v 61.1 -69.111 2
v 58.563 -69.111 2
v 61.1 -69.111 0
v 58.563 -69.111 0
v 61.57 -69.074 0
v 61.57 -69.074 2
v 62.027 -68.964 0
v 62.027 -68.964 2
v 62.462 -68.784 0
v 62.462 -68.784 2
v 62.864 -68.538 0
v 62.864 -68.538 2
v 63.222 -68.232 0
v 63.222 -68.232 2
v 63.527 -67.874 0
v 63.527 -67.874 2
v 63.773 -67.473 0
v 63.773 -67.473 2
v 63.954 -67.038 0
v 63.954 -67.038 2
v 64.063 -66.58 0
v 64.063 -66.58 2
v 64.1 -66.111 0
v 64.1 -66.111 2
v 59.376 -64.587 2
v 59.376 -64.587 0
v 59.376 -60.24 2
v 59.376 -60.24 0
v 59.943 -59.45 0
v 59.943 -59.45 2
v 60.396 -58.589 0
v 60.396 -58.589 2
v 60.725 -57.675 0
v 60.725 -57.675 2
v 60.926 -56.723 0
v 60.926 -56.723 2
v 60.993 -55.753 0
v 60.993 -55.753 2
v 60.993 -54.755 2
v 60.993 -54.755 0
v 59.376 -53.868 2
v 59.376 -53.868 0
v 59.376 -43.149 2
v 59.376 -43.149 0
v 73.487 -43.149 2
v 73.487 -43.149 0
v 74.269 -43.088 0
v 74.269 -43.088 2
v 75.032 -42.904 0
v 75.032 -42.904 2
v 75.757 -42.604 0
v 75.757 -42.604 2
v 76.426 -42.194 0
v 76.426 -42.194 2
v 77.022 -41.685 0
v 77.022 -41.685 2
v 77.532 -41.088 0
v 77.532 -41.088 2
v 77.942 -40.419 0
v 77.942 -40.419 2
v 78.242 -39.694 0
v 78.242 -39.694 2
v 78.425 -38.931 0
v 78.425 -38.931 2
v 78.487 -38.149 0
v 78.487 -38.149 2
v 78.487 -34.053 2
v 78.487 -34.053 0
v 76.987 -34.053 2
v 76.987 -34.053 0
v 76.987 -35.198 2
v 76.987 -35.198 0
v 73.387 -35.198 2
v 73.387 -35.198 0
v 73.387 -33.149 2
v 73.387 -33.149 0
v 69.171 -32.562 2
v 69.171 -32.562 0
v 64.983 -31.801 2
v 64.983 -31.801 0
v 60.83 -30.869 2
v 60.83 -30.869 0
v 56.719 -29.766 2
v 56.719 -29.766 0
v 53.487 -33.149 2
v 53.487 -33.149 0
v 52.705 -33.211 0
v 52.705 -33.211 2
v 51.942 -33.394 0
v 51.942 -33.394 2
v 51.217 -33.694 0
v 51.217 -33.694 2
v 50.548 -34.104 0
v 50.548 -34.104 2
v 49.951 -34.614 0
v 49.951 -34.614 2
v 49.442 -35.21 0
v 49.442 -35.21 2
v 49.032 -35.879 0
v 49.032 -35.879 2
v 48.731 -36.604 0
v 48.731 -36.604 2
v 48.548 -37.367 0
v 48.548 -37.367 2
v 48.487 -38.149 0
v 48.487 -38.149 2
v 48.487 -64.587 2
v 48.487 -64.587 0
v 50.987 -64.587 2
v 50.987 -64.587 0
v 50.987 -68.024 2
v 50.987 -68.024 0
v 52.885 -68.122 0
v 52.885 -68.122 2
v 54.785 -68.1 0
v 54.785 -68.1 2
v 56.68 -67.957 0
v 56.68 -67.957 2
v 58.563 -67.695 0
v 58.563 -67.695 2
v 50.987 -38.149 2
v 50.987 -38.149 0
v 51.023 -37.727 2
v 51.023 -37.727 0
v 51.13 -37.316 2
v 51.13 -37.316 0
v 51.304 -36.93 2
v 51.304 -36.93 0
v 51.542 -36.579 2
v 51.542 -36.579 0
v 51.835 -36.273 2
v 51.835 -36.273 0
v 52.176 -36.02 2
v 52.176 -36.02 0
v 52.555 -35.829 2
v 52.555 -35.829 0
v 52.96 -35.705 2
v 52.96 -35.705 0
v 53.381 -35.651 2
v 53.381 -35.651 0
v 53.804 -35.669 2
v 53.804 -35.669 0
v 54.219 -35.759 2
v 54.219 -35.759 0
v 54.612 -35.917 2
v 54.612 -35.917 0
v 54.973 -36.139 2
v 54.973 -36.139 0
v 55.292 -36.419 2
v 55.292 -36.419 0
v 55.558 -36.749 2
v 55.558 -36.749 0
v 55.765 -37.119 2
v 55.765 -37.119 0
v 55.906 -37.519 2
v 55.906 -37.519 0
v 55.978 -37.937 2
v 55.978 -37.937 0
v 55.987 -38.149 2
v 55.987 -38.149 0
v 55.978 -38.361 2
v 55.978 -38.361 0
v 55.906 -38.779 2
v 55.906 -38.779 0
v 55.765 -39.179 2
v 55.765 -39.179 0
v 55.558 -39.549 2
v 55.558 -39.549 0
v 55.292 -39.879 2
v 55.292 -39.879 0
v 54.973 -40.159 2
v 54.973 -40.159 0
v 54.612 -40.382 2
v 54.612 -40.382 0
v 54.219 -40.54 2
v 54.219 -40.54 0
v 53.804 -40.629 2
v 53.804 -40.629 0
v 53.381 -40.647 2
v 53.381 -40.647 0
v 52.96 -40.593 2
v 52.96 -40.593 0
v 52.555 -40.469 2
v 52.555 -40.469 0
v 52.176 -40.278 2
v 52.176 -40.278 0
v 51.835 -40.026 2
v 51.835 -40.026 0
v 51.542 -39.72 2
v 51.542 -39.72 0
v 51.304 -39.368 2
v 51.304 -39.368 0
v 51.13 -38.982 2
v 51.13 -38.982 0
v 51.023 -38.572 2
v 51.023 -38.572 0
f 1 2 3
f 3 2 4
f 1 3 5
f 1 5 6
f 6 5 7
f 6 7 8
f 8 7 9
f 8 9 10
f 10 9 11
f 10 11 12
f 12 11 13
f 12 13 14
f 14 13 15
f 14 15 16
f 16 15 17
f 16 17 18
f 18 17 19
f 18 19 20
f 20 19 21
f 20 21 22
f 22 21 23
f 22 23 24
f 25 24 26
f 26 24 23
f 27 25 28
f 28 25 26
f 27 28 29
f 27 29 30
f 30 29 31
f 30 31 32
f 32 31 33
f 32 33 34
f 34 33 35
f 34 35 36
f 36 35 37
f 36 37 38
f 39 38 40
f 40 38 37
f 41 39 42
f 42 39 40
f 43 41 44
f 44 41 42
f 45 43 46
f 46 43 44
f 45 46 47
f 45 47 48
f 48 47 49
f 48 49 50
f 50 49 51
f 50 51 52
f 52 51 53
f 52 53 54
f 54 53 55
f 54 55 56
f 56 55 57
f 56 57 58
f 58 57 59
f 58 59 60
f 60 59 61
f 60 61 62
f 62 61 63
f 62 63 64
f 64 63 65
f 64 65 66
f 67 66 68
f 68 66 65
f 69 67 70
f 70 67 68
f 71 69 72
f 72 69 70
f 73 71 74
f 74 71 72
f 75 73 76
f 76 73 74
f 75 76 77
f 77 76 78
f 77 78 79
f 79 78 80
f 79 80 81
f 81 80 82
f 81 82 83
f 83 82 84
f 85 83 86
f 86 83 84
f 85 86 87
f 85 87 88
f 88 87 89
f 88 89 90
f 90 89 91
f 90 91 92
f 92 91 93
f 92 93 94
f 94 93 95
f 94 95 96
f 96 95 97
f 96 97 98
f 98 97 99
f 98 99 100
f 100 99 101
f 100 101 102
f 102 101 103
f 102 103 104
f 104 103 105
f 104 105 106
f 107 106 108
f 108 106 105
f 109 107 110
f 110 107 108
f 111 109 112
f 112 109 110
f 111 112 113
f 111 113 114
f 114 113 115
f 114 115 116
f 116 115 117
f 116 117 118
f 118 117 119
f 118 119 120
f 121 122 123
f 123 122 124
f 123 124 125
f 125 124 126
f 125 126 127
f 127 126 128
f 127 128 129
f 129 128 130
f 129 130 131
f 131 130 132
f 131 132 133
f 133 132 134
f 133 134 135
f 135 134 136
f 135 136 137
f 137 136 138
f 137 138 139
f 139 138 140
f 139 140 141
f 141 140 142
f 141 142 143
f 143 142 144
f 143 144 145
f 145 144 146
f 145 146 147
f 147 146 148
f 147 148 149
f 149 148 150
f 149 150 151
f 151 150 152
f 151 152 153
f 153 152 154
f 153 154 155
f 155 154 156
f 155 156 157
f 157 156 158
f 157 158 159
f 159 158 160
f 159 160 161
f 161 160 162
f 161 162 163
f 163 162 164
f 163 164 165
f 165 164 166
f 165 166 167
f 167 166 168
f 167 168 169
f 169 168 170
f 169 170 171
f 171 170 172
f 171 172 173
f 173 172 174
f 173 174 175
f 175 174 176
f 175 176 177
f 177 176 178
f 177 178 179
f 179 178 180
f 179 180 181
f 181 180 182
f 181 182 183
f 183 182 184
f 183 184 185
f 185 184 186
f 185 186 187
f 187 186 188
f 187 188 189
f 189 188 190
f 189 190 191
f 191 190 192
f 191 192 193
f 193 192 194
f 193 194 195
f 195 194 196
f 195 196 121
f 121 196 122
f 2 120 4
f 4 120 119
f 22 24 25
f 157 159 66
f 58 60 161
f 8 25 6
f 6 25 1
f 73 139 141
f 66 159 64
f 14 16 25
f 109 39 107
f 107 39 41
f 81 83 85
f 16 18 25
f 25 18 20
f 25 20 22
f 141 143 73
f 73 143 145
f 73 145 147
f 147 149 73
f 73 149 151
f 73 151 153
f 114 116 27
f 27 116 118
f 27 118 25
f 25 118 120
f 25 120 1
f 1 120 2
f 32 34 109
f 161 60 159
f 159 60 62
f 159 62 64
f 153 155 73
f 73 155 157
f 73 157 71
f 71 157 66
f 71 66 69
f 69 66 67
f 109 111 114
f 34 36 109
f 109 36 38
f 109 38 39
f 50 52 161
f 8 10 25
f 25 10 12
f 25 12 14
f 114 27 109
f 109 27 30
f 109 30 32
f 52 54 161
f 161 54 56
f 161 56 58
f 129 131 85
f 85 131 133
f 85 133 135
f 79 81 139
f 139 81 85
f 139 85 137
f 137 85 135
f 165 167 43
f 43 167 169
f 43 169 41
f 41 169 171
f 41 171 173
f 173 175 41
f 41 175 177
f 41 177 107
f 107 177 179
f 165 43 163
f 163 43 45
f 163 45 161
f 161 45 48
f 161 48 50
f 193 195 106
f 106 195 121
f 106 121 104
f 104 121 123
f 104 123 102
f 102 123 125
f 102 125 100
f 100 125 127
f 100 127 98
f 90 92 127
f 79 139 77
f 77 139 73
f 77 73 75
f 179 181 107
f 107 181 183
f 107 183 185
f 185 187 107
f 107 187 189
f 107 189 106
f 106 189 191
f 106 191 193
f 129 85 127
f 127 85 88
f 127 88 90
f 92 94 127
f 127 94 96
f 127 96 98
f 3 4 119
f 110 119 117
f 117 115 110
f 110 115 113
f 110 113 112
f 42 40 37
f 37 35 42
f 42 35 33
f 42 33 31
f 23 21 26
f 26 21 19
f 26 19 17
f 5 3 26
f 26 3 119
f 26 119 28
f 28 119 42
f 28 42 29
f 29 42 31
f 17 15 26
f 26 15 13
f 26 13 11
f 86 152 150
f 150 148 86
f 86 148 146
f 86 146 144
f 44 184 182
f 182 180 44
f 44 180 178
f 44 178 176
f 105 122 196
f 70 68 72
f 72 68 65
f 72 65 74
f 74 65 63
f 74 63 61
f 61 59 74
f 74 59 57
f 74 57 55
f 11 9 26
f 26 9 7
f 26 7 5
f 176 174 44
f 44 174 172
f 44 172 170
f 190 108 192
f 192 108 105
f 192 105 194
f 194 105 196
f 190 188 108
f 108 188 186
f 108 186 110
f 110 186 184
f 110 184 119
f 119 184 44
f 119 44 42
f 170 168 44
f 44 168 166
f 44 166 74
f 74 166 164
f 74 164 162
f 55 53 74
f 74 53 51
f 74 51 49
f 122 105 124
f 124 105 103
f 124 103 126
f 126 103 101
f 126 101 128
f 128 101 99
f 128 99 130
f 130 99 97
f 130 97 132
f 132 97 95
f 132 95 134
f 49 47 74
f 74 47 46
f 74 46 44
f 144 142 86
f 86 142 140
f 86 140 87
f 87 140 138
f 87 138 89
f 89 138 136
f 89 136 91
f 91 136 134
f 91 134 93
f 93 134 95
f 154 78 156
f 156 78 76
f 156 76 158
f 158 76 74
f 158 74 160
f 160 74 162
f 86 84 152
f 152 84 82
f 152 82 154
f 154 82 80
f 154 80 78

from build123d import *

# Parameters (mm, degrees)
SKETCH_1_R      = 2.5
EXTRUDE_1_DEPTH = 2


with BuildPart() as part:
    # 스케치1 → 보스-돌출1 (new body)
    with BuildSketch(Plane.XY):
        with BuildLine():
            Line((58.562856649, -69.110949309), (61.100431709, -69.110949309))
            ThreePointArc((61.100431709, -69.110949309), (63.221752053, -68.232269653), (64.100431709, -66.110949309))
            Line((64.100431709, -66.110949309), (59.376120264, -64.586771365))
            Line((59.376120264, -64.586771365), (59.376120264, -60.240028533))
            ThreePointArc((59.376120264, -60.240028533), (60.576391584, -58.13775418), (60.992924776, -55.753072063))
            Line((60.992924776, -55.753072063), (60.992924776, -54.755314285))
            Line((60.992924776, -54.755314285), (59.376120264, -53.867981647))
            Line((59.376120264, -53.867981647), (59.376120264, -43.149191929))
            Line((59.376120264, -43.149191929), (73.486715323, -43.149191929))
            ThreePointArc((73.486715323, -43.149191929), (77.022249229, -41.684725835), (78.486715323, -38.149191929))
            Line((78.486715323, -38.149191929), (78.486715323, -34.05327534))
            Line((78.486715323, -34.05327534), (76.986715323, -34.05327534))
            Line((76.986715323, -34.05327534), (76.986715323, -35.198463464))
            Line((76.986715323, -35.198463464), (73.386715323, -35.198463464))
            Line((73.386715323, -35.198463464), (73.386715323, -33.149191929))
            ThreePointArc((73.386715323, -33.149191929), (64.982885636, -31.8013595), (56.718627509, -29.765912799))
            Line((56.718627509, -29.765912799), (53.486715323, -33.149191929))
            ThreePointArc((53.486715323, -33.149191929), (49.951181417, -34.613658023), (48.486715323, -38.149191929))
            Line((48.486715323, -38.149191929), (48.486715323, -64.586869755))
            Line((48.486715323, -64.586869755), (50.986715323, -64.586869755))
            Line((50.986715323, -64.586869755), (50.986715323, -68.023666262))
            ThreePointArc((50.986715323, -68.023666262), (54.785213458, -68.09995351), (58.562856649, -67.695206989))
            Line((58.562856649, -67.695206989), (58.562856649, -69.110949309))
        make_face()
        with Locations((53.486715323, -38.149191929)):
            Circle(SKETCH_1_R, mode=Mode.SUBTRACT)
    extrude(amount=EXTRUDE_1_DEPTH)


solid = part.part
